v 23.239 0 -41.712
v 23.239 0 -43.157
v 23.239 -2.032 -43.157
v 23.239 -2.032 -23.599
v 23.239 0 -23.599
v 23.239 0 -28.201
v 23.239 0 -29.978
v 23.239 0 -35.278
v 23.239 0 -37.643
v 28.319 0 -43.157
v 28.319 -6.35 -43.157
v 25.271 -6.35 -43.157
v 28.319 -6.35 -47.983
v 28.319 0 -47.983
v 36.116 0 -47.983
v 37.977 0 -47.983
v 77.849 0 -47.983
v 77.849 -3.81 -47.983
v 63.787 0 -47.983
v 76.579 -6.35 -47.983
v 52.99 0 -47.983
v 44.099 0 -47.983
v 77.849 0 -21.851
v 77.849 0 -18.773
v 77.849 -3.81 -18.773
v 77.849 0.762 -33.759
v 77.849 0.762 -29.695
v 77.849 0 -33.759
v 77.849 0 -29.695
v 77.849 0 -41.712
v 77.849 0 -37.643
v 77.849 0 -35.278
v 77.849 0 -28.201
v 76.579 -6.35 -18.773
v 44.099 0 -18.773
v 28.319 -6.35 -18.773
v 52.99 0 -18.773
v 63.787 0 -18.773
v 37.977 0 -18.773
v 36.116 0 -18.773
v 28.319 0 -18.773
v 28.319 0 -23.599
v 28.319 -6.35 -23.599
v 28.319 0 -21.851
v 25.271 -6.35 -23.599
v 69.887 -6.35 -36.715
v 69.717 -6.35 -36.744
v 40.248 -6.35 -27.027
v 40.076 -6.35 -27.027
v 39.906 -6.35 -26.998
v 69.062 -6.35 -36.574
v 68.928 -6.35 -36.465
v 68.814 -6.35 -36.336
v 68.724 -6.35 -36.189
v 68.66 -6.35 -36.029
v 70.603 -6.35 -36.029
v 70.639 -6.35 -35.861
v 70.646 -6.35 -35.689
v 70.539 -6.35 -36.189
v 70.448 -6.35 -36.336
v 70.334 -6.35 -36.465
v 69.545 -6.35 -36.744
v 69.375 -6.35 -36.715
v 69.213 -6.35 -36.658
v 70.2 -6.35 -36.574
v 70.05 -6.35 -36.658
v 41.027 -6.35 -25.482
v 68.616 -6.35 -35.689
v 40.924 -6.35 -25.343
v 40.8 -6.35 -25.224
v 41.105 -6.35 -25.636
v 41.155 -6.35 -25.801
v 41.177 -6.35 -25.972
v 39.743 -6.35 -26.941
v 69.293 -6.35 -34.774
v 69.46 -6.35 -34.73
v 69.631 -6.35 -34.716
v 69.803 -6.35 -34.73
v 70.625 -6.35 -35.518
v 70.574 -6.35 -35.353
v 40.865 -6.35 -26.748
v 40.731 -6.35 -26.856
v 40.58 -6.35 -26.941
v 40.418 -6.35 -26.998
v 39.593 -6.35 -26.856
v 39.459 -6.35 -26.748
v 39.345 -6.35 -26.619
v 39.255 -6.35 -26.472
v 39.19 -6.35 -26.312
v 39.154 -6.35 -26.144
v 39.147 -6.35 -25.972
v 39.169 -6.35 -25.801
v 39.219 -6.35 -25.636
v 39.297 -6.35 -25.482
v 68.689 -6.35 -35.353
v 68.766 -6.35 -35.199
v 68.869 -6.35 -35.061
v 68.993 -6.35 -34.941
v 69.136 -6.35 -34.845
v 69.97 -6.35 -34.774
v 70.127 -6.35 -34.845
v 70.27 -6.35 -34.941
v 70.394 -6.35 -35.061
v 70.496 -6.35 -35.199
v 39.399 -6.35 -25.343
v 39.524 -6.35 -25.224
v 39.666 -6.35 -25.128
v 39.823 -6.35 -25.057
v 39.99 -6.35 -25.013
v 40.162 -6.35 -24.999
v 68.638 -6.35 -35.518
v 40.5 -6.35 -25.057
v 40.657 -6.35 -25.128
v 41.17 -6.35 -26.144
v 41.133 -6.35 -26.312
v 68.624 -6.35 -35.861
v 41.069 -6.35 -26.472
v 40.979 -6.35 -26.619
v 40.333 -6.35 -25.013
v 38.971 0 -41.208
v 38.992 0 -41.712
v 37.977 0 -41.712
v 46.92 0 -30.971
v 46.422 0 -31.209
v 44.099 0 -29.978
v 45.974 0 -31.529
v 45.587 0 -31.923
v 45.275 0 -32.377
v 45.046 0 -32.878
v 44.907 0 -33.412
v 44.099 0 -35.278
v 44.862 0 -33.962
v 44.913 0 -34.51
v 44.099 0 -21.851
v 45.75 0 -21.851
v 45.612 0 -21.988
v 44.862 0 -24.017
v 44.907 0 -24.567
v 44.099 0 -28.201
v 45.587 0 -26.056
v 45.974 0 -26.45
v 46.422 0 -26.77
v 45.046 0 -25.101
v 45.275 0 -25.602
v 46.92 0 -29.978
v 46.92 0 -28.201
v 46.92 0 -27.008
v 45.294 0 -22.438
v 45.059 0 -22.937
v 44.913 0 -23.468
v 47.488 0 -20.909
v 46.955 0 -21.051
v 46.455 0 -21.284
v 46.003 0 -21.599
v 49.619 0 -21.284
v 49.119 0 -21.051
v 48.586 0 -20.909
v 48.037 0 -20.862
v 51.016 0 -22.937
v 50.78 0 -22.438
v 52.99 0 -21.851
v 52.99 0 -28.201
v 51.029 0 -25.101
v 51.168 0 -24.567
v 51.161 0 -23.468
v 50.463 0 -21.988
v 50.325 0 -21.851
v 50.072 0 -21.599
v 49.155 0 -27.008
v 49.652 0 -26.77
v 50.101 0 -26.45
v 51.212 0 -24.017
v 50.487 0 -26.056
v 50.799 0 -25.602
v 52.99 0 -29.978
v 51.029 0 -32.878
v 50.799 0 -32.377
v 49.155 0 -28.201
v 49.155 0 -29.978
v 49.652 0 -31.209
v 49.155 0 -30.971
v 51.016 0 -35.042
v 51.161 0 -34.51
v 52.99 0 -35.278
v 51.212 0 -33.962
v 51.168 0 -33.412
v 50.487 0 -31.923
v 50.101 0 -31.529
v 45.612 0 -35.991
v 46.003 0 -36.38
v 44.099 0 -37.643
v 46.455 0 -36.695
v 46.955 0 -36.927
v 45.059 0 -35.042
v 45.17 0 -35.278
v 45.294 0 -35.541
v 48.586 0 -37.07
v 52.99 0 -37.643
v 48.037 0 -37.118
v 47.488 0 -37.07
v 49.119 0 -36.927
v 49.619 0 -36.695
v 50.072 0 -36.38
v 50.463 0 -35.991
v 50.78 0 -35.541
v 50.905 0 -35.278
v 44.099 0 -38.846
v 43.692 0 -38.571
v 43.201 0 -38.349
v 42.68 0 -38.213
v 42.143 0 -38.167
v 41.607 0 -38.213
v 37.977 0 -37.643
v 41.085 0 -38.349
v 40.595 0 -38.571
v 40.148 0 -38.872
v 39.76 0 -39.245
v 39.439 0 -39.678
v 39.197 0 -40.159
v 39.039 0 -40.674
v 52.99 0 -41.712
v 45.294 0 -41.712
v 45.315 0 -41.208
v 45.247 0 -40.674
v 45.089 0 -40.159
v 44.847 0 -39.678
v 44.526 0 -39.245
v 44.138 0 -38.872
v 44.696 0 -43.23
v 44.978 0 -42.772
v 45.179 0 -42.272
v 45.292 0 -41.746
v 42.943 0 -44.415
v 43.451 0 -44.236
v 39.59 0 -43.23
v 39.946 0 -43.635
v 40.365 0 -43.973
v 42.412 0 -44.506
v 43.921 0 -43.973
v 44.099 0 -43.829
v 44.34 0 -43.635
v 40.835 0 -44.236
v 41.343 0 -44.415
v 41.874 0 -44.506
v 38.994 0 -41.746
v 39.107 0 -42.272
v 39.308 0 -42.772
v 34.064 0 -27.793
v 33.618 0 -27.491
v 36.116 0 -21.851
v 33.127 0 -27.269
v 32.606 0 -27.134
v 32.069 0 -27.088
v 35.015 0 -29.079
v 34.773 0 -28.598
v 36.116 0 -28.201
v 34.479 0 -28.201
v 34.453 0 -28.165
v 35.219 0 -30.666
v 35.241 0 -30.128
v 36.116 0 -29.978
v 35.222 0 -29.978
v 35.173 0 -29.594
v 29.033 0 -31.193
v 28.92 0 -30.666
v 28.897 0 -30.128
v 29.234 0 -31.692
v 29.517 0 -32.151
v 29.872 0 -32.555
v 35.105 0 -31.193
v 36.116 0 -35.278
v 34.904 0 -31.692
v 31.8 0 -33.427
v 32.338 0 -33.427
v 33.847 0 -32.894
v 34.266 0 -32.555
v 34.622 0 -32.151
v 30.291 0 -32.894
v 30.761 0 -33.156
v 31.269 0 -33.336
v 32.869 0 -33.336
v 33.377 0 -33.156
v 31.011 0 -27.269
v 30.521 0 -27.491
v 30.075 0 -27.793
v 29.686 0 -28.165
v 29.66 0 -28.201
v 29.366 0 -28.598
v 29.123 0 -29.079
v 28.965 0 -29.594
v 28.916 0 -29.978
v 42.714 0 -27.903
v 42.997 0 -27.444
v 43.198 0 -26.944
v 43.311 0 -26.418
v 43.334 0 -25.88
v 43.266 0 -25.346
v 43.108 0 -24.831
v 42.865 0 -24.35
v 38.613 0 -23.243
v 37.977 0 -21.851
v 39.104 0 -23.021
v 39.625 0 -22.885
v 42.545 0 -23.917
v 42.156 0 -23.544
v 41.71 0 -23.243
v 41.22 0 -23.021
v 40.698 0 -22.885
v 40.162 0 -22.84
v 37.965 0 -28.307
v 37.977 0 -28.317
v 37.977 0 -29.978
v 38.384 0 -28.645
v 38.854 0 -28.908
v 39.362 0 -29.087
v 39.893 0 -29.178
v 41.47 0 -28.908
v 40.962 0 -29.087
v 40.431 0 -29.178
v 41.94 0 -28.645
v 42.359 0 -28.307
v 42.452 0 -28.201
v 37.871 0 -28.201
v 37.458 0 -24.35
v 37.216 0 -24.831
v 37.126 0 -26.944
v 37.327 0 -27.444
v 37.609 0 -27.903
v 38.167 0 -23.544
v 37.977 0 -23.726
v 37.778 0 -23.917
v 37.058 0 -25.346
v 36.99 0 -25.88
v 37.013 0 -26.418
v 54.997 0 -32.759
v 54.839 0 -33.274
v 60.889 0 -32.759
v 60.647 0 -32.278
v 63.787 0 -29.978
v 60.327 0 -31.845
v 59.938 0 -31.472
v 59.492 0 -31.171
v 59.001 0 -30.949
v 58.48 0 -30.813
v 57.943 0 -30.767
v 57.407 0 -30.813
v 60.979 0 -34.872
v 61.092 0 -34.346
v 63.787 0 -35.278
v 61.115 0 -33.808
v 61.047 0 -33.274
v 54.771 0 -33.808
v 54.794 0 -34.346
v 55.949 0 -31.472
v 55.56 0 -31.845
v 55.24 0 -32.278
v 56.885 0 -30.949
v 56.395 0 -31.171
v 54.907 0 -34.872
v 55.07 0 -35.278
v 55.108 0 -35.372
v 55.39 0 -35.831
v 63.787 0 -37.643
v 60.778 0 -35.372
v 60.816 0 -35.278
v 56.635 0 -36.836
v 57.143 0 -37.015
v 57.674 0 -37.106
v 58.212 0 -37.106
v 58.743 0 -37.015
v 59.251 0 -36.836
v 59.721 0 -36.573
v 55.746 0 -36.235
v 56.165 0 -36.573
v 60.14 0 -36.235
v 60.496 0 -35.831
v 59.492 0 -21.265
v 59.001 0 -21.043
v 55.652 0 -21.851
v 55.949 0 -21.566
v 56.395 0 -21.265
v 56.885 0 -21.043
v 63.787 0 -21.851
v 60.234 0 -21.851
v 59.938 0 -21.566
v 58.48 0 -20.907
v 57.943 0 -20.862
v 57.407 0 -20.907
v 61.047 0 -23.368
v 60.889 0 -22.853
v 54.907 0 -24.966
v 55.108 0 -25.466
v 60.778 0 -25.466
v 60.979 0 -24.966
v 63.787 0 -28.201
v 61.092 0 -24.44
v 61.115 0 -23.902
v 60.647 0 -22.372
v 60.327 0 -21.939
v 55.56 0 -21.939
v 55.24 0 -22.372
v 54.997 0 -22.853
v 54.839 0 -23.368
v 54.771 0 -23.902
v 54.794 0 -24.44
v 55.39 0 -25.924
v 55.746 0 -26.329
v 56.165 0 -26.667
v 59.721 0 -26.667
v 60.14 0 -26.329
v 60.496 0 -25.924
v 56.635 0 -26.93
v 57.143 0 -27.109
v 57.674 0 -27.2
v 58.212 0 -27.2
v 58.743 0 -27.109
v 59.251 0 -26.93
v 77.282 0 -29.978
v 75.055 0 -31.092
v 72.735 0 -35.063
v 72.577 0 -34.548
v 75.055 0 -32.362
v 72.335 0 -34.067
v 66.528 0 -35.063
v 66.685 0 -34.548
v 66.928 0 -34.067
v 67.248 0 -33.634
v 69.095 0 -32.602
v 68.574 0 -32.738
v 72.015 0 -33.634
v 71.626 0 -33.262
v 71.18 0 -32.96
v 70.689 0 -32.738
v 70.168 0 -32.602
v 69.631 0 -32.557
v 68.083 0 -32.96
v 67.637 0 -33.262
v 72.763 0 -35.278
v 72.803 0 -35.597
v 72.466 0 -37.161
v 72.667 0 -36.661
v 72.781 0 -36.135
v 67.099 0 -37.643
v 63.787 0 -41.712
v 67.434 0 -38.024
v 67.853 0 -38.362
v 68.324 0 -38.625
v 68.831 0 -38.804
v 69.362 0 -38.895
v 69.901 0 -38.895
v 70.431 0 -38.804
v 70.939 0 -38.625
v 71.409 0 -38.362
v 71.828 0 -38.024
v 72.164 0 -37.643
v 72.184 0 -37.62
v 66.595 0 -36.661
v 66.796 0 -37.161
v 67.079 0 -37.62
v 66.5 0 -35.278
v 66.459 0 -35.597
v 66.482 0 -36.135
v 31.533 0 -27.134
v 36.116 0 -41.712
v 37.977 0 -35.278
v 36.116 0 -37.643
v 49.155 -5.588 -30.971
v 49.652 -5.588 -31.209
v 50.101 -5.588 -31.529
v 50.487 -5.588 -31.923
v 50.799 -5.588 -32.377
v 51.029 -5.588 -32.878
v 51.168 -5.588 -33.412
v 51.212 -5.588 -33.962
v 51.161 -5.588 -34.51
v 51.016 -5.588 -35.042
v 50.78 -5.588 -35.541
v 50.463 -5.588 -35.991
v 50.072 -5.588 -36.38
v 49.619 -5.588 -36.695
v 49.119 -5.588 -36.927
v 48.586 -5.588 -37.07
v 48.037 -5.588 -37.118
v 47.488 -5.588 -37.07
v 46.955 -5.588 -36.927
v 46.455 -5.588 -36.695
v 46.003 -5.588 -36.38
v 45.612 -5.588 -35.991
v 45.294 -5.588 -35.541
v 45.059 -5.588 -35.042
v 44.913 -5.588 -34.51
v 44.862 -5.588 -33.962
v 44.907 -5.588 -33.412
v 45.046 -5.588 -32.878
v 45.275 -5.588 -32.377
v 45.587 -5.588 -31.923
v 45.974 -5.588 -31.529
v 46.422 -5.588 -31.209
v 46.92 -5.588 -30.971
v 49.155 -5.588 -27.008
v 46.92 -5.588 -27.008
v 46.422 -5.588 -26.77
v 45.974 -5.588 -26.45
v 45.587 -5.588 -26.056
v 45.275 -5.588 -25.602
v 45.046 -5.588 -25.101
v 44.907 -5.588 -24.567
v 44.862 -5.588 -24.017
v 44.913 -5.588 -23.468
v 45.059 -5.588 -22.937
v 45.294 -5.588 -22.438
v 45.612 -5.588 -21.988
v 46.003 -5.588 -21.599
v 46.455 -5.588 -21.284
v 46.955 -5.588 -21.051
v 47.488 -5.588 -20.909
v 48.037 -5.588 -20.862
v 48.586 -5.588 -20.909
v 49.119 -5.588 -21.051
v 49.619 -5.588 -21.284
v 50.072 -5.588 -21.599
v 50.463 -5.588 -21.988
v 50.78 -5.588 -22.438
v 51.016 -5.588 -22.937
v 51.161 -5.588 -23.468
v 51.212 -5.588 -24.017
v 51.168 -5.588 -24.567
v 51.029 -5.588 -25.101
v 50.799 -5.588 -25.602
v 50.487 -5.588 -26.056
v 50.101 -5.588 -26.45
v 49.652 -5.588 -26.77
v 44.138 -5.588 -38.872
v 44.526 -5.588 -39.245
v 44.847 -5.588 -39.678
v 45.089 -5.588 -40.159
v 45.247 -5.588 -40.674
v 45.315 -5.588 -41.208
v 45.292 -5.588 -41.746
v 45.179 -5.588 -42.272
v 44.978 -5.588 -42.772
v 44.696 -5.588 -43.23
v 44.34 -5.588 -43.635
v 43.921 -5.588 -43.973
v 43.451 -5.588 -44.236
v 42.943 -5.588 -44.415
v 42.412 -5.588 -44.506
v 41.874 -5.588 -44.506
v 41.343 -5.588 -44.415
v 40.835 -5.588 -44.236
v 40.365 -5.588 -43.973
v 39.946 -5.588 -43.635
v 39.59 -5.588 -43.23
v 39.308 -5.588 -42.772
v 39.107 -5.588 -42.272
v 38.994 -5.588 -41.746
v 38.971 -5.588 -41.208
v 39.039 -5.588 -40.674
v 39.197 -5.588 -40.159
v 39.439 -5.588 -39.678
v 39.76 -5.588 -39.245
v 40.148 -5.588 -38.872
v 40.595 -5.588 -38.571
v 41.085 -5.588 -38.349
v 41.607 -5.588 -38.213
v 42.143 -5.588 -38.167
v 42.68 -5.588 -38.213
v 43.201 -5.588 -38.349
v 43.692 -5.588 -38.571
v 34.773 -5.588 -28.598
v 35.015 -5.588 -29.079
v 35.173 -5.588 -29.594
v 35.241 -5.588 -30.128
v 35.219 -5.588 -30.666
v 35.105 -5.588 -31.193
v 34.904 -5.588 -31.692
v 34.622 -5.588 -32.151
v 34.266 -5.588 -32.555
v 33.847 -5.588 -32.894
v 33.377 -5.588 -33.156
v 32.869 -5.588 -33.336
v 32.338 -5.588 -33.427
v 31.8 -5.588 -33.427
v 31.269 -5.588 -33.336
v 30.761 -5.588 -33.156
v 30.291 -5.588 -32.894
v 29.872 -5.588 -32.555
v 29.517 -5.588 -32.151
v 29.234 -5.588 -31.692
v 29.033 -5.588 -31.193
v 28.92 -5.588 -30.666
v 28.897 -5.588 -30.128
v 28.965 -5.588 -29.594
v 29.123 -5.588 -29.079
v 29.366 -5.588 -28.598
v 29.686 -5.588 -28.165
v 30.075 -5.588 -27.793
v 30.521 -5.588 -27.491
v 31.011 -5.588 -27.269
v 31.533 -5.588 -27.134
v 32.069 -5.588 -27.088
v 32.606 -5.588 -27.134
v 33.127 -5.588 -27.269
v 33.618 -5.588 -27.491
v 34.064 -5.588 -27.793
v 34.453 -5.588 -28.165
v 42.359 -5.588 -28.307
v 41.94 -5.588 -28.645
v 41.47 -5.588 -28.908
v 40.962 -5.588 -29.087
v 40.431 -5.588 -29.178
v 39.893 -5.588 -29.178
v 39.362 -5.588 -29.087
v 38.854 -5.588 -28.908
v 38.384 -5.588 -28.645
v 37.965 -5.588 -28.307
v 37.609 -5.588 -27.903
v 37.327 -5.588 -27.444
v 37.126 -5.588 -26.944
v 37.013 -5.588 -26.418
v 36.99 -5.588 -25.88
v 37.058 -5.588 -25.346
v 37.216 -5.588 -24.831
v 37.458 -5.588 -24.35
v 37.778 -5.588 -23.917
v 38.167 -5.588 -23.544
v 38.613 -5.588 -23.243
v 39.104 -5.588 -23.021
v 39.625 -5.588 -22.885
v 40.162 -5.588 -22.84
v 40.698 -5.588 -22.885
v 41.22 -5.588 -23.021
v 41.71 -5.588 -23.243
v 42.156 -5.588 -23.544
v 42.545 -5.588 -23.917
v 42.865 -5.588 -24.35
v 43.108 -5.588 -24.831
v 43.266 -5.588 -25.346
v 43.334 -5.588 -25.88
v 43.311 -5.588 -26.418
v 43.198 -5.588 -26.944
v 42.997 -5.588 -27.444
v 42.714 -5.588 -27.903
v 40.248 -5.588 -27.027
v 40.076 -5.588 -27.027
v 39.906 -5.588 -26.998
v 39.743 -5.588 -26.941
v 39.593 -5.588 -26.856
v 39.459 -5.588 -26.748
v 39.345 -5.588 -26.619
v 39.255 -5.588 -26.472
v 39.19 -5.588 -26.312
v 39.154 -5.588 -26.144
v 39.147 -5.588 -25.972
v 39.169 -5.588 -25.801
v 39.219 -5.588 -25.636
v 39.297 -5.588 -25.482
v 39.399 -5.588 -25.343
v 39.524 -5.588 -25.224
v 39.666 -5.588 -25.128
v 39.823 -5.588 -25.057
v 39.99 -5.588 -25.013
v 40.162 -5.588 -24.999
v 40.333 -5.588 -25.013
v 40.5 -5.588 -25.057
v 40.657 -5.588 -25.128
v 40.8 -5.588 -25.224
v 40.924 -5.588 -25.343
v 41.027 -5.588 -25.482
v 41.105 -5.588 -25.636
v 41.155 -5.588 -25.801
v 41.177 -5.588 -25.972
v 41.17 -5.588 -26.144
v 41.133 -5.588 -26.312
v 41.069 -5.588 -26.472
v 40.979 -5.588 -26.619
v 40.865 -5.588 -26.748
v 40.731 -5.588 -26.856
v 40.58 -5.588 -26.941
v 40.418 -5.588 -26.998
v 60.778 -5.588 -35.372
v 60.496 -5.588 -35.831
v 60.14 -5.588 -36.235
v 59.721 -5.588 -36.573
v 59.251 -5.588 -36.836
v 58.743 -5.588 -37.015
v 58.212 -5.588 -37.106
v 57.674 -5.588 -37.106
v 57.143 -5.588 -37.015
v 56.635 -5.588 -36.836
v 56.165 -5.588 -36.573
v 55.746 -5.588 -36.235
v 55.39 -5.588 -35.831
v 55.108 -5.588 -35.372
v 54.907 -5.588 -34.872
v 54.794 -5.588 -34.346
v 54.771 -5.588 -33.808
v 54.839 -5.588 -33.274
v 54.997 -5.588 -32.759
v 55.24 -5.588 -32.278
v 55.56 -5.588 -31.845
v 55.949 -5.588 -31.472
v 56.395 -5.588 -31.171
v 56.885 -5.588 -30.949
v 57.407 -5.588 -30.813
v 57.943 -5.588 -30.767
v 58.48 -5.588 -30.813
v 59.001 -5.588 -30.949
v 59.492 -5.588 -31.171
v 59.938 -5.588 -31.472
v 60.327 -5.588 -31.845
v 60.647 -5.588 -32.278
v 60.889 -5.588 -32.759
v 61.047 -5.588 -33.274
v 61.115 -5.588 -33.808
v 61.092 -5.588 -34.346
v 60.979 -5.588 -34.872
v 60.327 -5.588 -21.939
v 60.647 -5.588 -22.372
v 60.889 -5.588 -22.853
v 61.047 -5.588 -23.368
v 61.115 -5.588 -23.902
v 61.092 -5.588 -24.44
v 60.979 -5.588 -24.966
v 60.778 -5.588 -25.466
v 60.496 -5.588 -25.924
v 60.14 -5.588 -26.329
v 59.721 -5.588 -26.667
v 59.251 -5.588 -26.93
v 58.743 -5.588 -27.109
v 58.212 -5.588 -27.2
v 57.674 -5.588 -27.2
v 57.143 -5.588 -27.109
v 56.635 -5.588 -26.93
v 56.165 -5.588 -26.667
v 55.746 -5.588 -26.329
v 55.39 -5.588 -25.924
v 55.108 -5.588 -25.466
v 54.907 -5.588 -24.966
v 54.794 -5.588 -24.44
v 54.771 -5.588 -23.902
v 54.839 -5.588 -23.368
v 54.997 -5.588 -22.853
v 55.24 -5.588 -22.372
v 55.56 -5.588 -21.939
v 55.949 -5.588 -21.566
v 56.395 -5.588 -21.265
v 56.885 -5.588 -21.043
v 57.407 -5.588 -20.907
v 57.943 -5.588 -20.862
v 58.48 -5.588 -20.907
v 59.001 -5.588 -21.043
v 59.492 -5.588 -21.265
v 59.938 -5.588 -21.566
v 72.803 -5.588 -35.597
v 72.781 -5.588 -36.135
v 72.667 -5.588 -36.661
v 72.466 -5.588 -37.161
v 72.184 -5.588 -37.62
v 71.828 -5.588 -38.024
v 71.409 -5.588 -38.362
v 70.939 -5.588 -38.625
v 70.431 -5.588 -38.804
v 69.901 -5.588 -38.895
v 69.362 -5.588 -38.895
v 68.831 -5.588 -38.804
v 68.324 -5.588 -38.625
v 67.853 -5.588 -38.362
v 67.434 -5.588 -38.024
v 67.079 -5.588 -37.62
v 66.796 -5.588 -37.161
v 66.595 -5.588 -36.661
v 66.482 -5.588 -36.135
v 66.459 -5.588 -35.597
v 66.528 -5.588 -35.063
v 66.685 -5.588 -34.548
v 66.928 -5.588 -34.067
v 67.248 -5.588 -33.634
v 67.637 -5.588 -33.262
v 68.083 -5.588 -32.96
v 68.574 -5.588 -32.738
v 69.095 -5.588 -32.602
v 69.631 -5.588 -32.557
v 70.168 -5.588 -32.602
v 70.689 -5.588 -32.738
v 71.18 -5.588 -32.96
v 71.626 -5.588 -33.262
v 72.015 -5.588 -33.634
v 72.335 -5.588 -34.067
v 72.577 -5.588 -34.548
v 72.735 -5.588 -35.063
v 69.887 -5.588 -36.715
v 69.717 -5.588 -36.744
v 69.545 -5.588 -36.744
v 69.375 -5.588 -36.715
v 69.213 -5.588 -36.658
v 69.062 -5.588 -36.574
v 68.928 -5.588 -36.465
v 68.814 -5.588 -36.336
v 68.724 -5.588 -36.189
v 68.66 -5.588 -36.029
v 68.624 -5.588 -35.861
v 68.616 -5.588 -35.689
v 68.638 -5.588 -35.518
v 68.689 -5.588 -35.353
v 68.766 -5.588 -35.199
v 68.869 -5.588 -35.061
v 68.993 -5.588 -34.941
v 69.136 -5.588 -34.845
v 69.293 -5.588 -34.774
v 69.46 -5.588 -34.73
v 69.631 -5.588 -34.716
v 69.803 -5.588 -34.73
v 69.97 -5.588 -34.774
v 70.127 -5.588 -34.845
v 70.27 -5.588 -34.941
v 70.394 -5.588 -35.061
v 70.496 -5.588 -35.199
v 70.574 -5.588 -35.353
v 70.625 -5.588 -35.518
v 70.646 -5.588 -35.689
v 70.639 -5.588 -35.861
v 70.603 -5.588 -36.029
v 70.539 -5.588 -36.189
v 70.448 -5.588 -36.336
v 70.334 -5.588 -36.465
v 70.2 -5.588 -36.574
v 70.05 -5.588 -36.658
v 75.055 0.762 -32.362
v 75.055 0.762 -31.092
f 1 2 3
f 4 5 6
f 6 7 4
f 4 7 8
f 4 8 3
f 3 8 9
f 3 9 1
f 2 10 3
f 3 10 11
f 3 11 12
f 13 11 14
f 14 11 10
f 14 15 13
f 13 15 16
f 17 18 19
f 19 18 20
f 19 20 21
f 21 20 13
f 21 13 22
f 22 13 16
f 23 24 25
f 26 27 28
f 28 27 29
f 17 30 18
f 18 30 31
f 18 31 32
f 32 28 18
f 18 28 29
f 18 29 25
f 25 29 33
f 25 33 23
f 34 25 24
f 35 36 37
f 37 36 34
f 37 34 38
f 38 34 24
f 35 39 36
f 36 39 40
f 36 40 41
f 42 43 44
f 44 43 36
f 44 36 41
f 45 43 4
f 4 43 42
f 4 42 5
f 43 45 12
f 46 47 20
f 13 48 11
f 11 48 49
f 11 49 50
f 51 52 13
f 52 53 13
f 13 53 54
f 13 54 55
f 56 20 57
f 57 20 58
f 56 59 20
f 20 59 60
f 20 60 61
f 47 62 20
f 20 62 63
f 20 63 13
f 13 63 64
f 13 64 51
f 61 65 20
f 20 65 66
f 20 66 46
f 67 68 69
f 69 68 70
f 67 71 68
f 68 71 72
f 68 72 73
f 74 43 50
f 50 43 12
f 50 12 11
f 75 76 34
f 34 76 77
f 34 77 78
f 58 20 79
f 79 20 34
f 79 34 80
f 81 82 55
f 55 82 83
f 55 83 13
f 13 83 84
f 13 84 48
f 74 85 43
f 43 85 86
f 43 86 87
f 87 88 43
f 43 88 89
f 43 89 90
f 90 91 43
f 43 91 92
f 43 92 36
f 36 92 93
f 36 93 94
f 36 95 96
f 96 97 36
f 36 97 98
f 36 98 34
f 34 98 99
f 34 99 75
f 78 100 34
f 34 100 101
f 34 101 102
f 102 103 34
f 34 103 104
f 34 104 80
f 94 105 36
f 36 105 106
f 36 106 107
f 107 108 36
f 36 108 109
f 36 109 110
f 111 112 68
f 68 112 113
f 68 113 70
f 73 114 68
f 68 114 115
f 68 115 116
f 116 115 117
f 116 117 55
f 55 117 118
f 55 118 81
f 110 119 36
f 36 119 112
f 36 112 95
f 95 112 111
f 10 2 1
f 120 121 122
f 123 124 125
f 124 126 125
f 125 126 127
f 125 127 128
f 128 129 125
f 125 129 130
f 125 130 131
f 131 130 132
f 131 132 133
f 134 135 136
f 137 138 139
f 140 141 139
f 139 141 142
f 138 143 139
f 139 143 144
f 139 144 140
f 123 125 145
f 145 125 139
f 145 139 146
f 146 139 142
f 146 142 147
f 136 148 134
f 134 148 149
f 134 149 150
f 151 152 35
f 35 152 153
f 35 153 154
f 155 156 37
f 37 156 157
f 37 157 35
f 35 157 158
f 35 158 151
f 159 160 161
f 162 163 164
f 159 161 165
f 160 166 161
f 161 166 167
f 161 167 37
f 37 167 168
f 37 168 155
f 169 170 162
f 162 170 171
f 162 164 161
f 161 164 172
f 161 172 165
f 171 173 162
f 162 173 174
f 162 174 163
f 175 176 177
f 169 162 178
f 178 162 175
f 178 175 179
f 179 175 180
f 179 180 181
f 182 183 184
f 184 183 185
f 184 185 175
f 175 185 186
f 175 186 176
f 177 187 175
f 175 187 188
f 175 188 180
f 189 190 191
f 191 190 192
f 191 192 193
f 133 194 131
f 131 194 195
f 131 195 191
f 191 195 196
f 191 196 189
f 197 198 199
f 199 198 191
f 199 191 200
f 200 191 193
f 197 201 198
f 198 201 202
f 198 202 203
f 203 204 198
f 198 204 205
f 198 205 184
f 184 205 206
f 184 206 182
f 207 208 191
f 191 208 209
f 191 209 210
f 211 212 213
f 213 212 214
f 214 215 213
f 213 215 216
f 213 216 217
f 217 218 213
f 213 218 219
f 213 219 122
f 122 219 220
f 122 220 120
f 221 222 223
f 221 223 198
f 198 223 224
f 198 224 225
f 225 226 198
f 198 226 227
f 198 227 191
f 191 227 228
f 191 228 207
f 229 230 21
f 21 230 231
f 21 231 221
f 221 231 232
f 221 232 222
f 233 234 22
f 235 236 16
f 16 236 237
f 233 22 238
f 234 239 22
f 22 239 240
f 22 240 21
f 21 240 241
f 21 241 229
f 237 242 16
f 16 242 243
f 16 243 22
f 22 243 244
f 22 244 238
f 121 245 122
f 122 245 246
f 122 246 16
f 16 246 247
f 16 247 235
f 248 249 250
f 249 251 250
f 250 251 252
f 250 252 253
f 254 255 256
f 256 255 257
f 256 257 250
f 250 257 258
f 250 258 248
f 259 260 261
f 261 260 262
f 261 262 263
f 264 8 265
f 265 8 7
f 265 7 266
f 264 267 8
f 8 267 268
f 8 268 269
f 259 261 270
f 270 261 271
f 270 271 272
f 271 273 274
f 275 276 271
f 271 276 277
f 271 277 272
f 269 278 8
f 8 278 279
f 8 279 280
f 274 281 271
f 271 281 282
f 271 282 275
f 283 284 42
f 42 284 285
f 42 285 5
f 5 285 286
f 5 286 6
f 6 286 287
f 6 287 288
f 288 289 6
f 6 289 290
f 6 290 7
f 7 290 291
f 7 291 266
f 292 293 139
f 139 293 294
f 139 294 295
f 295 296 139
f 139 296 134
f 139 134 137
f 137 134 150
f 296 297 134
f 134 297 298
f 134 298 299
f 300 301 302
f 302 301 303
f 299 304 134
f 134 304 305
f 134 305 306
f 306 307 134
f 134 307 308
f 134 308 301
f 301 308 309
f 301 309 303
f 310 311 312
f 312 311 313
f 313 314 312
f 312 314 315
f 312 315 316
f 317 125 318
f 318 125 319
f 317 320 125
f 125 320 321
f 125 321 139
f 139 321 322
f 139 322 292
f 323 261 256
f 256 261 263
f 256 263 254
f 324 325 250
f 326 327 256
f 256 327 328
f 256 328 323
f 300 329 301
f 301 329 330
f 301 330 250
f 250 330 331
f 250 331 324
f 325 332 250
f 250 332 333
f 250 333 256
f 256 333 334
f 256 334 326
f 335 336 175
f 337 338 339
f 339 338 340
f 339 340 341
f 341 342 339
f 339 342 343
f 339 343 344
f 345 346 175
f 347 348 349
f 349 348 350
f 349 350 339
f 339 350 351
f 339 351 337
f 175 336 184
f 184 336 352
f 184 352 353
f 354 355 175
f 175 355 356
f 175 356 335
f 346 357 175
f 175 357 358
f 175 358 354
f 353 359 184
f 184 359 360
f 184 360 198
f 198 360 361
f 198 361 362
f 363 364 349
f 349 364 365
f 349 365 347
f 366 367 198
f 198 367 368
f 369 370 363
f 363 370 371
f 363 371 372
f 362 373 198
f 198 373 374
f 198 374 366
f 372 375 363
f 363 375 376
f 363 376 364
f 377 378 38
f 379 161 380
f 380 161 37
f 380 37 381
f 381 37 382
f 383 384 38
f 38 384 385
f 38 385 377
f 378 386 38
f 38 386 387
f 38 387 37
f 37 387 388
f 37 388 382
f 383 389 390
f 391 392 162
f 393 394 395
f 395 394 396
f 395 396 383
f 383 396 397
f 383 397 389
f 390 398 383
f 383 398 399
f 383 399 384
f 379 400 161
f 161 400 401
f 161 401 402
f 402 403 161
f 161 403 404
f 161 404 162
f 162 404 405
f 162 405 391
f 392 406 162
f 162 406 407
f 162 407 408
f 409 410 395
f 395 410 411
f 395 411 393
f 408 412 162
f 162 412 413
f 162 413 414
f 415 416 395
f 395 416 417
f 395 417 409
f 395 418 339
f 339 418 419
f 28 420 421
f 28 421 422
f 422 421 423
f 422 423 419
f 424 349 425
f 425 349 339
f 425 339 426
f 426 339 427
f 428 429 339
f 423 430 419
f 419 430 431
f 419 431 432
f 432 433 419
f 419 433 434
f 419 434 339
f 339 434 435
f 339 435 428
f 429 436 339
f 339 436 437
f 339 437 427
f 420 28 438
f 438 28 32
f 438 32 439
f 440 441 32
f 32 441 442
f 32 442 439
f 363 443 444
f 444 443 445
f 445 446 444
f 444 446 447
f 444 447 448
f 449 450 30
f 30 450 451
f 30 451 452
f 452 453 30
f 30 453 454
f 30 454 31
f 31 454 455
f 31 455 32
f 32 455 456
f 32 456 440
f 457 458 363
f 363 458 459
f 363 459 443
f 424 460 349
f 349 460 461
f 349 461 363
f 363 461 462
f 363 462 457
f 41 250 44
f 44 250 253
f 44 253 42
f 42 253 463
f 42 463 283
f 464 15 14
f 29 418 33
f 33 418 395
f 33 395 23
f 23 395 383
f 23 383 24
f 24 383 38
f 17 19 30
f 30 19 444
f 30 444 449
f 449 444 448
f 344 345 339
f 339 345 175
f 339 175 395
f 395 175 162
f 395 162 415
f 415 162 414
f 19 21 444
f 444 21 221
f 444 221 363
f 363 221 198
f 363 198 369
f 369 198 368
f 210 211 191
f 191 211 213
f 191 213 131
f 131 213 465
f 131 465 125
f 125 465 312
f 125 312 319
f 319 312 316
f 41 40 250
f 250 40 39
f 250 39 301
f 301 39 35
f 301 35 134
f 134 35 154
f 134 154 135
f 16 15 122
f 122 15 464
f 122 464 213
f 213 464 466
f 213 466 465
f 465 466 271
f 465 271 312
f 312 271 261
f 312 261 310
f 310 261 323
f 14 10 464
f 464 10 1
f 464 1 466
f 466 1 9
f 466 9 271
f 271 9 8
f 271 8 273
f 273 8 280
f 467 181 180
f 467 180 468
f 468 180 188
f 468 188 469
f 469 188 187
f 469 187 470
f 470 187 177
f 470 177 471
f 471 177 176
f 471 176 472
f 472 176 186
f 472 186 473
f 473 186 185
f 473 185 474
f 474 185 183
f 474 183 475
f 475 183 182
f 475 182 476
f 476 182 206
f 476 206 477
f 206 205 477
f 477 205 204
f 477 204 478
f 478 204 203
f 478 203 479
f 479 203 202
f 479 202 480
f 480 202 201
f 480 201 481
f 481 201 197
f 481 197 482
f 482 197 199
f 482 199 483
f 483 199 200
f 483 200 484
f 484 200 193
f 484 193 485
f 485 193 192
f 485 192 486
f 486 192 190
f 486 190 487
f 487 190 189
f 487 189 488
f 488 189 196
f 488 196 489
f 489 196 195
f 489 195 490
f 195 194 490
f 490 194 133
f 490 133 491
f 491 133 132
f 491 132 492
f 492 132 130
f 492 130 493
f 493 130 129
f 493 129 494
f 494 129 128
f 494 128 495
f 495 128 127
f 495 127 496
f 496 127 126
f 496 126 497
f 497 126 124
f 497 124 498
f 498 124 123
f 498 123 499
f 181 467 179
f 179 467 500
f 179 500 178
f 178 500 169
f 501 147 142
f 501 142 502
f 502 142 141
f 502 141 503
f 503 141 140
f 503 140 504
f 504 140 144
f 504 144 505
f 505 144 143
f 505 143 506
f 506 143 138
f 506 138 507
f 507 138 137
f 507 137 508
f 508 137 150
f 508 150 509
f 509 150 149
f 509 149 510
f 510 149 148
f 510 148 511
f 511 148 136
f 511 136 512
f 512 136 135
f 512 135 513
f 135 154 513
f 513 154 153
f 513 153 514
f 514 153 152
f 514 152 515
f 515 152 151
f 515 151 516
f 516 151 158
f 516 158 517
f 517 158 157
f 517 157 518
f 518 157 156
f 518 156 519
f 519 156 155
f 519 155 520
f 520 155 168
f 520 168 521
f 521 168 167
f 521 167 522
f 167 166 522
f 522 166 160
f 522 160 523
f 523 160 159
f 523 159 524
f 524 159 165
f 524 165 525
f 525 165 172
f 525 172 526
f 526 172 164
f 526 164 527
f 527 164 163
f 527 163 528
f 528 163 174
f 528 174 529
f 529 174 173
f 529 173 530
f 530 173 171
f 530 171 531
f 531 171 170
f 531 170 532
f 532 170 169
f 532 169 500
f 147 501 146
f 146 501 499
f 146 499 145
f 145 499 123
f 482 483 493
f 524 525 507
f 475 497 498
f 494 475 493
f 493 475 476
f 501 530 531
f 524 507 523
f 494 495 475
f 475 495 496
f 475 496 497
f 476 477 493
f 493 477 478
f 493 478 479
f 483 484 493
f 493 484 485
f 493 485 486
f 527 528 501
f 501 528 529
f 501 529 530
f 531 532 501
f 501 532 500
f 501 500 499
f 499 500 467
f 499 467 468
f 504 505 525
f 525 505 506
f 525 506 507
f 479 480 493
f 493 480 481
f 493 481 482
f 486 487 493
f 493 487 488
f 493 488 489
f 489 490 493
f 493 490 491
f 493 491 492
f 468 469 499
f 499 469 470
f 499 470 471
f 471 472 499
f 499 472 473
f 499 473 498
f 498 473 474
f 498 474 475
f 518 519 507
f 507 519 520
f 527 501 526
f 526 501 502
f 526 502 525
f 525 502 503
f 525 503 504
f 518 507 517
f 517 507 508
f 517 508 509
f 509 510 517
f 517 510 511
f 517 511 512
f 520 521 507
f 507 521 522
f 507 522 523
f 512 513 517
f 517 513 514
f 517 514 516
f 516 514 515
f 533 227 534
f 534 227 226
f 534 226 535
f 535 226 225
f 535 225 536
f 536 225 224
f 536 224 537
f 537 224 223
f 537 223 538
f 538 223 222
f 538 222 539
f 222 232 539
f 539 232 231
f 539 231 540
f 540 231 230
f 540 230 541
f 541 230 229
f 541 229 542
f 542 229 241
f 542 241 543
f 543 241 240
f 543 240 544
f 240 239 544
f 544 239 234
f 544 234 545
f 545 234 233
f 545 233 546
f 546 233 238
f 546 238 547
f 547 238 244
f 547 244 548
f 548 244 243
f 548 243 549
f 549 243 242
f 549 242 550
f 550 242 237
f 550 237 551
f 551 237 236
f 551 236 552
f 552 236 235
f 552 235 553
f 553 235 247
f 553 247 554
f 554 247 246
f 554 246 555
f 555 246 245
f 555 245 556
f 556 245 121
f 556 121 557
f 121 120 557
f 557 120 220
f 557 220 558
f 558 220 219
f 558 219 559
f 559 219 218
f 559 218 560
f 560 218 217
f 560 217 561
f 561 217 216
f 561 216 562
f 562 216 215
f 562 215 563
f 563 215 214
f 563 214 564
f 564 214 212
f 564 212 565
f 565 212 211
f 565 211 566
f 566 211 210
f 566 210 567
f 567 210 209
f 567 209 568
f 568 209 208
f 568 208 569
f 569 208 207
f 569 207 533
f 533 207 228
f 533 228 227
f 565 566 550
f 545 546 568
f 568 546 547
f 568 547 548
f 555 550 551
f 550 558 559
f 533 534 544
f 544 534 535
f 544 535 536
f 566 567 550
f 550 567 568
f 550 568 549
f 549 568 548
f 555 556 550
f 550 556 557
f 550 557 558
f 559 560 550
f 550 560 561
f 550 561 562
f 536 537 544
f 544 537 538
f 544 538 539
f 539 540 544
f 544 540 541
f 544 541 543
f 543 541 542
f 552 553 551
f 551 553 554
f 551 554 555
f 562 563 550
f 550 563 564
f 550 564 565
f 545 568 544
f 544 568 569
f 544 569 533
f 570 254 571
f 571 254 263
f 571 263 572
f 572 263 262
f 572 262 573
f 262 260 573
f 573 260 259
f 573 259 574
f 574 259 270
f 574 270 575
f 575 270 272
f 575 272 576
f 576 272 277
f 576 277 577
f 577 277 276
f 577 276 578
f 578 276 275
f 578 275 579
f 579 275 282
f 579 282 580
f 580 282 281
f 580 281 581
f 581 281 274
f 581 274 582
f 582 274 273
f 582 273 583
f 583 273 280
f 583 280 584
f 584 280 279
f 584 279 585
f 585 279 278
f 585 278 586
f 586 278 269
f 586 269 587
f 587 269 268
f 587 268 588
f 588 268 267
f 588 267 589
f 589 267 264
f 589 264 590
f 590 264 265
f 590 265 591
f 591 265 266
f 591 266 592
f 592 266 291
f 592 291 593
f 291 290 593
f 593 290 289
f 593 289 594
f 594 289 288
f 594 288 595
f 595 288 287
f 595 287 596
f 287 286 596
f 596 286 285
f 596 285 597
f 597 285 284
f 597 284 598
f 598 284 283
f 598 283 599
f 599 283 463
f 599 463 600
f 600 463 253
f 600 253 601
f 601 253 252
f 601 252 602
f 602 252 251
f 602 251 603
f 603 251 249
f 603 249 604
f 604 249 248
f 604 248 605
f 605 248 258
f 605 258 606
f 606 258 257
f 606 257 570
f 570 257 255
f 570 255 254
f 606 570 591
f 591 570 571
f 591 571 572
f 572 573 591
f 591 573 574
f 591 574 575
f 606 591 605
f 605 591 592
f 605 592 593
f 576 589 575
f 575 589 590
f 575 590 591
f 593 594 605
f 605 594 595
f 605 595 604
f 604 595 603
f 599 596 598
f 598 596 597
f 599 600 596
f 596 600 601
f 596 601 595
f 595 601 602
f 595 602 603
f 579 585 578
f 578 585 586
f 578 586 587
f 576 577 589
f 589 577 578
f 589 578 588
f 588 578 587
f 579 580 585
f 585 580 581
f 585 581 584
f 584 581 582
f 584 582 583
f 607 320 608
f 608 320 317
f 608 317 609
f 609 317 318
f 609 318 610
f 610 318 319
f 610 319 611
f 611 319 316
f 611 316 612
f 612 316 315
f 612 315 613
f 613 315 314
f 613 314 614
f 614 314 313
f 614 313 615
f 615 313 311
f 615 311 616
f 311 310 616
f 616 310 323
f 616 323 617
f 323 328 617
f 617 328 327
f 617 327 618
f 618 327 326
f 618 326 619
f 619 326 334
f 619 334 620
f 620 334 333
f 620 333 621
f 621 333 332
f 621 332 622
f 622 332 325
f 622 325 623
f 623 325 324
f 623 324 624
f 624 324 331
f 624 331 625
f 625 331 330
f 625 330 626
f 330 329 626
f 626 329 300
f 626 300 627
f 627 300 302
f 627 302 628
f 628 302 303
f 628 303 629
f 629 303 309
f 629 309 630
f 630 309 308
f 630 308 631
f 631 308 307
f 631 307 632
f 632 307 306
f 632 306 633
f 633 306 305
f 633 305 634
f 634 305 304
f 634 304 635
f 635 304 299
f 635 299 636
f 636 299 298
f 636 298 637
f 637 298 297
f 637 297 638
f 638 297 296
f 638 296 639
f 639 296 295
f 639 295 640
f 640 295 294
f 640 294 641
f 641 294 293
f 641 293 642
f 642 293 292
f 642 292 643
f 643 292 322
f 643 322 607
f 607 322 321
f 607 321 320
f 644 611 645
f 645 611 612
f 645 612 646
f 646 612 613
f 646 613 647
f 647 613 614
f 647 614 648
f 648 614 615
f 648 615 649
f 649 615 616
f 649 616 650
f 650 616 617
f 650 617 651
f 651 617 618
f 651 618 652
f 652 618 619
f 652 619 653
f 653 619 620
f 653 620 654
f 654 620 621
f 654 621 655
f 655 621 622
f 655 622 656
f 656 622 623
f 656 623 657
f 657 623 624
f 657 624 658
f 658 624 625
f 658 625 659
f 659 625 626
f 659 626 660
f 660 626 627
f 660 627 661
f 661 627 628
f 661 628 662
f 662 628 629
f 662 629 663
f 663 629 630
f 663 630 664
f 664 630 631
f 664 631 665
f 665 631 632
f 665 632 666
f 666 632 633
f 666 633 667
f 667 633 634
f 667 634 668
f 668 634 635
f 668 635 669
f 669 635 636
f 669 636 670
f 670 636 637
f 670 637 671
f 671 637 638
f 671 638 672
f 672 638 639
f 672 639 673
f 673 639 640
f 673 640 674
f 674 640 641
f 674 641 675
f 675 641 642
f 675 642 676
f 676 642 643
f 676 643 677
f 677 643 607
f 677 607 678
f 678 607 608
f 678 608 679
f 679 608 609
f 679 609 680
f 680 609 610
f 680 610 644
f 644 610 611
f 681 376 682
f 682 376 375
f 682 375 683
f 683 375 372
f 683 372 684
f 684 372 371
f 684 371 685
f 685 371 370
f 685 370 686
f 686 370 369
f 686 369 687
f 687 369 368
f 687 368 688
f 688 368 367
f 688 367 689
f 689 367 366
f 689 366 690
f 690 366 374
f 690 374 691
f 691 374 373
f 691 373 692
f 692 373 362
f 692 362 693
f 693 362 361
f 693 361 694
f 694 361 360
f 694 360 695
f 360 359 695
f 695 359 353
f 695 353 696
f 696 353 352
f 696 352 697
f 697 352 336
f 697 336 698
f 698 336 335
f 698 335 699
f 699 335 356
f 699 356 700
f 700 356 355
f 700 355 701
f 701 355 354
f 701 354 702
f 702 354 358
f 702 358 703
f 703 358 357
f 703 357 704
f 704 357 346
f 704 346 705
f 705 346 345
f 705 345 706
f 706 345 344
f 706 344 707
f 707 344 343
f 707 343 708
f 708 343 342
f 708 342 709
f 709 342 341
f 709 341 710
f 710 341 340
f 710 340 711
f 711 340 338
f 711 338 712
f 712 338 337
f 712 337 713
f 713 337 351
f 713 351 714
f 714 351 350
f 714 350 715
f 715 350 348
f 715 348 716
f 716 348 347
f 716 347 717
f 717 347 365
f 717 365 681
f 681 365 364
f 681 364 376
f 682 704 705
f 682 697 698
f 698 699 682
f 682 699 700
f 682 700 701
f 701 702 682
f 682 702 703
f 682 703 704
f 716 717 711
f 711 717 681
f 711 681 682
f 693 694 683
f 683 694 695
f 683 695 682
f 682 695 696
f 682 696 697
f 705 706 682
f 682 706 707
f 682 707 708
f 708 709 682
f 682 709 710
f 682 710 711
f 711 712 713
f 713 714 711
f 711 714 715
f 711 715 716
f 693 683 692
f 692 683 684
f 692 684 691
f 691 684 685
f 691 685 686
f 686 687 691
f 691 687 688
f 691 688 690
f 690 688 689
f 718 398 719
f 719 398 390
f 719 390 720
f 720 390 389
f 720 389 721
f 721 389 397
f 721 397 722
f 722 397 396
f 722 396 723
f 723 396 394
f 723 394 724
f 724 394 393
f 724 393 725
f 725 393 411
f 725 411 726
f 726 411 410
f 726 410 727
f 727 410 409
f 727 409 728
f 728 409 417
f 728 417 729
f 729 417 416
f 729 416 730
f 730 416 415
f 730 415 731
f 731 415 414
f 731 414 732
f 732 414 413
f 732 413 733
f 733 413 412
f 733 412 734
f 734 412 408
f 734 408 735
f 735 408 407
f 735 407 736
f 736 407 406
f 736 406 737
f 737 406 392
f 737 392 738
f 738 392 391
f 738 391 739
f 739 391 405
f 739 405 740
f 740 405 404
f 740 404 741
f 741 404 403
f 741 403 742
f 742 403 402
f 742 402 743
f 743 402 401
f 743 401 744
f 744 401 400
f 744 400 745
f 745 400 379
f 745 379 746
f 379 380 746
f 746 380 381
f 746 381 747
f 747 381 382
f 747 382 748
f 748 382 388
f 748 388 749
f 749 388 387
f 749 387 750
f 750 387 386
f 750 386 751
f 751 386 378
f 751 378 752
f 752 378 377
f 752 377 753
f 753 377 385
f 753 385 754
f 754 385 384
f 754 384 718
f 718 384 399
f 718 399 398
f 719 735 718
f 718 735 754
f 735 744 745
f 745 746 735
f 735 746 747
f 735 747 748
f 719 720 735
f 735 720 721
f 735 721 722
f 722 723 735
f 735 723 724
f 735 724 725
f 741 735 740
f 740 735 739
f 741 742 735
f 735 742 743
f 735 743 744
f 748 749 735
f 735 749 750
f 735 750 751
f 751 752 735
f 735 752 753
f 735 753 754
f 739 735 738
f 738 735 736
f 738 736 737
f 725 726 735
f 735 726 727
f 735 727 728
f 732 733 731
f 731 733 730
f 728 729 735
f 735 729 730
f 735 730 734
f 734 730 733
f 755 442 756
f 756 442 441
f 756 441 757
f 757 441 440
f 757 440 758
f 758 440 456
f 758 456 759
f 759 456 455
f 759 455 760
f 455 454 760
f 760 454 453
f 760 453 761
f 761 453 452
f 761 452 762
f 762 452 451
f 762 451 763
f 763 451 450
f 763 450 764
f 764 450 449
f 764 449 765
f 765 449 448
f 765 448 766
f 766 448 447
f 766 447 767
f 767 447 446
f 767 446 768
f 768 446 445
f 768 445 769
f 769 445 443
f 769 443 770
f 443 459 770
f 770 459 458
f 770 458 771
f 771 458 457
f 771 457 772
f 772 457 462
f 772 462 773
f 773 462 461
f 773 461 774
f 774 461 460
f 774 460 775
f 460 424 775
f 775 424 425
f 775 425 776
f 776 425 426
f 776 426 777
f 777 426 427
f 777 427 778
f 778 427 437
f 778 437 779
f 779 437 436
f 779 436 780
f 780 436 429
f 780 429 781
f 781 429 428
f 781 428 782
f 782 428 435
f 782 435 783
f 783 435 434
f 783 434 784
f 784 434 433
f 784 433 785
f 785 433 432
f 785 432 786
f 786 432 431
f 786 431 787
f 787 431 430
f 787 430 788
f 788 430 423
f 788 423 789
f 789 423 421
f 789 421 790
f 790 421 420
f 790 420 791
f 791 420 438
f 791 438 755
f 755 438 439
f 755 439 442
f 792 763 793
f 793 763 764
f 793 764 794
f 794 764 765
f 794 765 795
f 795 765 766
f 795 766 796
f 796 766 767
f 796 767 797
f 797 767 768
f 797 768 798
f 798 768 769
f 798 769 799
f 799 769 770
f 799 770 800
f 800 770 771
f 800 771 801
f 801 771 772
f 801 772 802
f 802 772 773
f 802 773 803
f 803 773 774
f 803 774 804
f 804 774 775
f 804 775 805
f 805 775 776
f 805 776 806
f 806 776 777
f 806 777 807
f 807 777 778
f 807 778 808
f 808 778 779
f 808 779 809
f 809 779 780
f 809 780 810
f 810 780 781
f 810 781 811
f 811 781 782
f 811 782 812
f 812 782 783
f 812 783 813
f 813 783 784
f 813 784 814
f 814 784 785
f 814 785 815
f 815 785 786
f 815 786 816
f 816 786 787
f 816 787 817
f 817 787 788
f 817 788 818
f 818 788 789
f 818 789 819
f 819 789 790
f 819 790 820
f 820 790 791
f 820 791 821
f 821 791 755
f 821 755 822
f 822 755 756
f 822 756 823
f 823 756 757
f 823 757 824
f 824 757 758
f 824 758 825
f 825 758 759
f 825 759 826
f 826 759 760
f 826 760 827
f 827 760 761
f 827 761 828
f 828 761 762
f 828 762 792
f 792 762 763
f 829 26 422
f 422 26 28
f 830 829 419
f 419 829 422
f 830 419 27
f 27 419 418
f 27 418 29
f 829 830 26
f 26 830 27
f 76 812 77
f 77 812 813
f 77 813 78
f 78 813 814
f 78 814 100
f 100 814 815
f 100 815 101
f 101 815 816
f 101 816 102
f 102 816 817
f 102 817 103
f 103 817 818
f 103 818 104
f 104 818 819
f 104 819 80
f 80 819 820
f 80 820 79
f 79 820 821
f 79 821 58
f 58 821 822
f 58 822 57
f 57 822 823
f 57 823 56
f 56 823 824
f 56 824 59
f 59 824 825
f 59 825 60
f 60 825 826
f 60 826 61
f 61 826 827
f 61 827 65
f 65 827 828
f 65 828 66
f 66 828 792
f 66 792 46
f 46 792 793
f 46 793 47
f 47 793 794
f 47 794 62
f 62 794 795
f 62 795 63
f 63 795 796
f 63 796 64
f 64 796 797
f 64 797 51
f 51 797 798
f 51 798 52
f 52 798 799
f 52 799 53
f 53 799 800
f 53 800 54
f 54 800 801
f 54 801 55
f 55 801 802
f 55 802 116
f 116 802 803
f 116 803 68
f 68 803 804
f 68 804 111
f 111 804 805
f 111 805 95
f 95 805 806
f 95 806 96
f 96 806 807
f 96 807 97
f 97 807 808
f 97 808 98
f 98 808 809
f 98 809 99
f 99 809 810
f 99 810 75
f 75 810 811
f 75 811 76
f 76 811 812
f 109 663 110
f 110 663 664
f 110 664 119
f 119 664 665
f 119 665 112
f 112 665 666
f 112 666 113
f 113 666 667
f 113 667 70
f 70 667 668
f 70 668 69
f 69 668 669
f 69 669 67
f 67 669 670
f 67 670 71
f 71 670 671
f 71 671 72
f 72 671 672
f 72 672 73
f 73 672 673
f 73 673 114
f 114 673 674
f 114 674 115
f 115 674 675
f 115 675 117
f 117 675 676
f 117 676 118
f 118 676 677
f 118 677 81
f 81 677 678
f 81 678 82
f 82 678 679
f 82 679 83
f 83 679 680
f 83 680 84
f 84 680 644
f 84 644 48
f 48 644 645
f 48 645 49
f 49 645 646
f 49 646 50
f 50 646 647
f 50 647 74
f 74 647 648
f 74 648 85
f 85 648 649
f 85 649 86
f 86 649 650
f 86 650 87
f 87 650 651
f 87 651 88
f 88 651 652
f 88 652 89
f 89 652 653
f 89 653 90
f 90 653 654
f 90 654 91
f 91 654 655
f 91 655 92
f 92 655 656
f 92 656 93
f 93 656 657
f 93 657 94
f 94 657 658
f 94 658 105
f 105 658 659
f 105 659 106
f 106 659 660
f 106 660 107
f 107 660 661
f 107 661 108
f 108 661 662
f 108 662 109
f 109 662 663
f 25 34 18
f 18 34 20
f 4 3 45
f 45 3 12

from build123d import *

# Parameters (mm, degrees)
BOSS_EXTRUDE1_DEPTH = 6.35
SKETCH2_R           = 3.175
CUT_EXTRUDE1_DEPTH  = 5.588
BOSS_EXTRUDE2_DEPTH = 0.762
SKETCH4_R           = 1.016
CUT_EXTRUDE2_DEPTH  = 7.35
CUT_EXTRUDE3_DEPTH  = 30.21
CUT_EXTRUDE4_DEPTH  = 25.384


with BuildPart() as part:
    # Sketch1 → Boss-Extrude1 (new body)
    with BuildSketch(Plane(origin=(0, 0, 0), x_dir=(1, 0, 0), z_dir=(0, 1, 0))):
        Polygon((77.849076972, 47.983166812), (28.319076972, 47.983166812), (28.319076972, 43.157166812), (23.239076972, 43.157166812), (23.239076972, 23.599166812), (28.319076972, 23.599166812), (28.319076972, 18.773166812), (77.849076972, 18.773166812), align=None)
    extrude(amount=-BOSS_EXTRUDE1_DEPTH)

    # Sketch2 → Cut-Extrude1 (cut)
    with BuildSketch(Plane(origin=(0, 0, 0), x_dir=(1, 0, 0), z_dir=(0, 1, 0))):
        with Locations((42.143084751, 41.34242402)):
            Circle(SKETCH2_R)
        with Locations((32.069218962, 30.263111699)):
            Circle(SKETCH2_R)
        with Locations((40.161790785, 26.014596512)):
            Circle(SKETCH2_R)
        with Locations((57.943162236, 33.942485163)):
            Circle(SKETCH2_R)
        with Locations((57.943162236, 24.036485163)):
            Circle(SKETCH2_R)
        with Locations((69.631305355, 35.731766034)):
            Circle(SKETCH2_R)
        with BuildLine():
            Line((46.919562236, 30.970685163), (46.919562236, 27.008285163))
            ThreePointArc((46.919562236, 27.008285163), (48.037162236, 20.861485163), (49.154762236, 27.008285163))
            Line((49.154762236, 27.008285163), (49.154762236, 30.970685163))
            ThreePointArc((49.154762236, 30.970685163), (48.037162236, 37.117485163), (46.919562236, 30.970685163))
        make_face()
    extrude(amount=-CUT_EXTRUDE1_DEPTH, mode=Mode.SUBTRACT)

    # Sketch3 → Boss-Extrude2 (add)
    with BuildSketch(Plane(origin=(0, 0, 0), x_dir=(1, 0, 0), z_dir=(0, 1, 0))):
        Polygon((77.849076972, 33.759166812), (75.055076972, 32.362166812), (75.055076972, 31.092166812), (77.849076972, 29.695166812), align=None)
    extrude(amount=BOSS_EXTRUDE2_DEPTH)

    # Sketch4 → Cut-Extrude2 (cut, through all)
    with BuildSketch(Plane(origin=(0, 0, 0), x_dir=(1, 0, 0), z_dir=(0, 1, 0))):
        with Locations((69.631305355, 35.731766034)):
            Circle(SKETCH4_R)
        with Locations((40.161790785, 26.014596512)):
            Circle(SKETCH4_R)
    extrude(amount=-CUT_EXTRUDE2_DEPTH, mode=Mode.SUBTRACT)

    # Sketch5 → Cut-Extrude3 (cut, through all)
    with BuildSketch(Plane.XY.offset(-18.773166812)):
        Polygon((77.849076972, -3.81), (76.579076972, -6.35), (77.849076972, -6.35), align=None)
    extrude(amount=-CUT_EXTRUDE3_DEPTH, mode=Mode.SUBTRACT)

    # Sketch6 → Cut-Extrude4 (cut, through all)
    with BuildSketch(Plane.XY.offset(-23.599166812)):
        Polygon((25.271076972, -6.35), (23.239076972, -2.032), (23.239076972, -6.35), align=None)
    extrude(amount=-CUT_EXTRUDE4_DEPTH, mode=Mode.SUBTRACT)


solid = part.part
